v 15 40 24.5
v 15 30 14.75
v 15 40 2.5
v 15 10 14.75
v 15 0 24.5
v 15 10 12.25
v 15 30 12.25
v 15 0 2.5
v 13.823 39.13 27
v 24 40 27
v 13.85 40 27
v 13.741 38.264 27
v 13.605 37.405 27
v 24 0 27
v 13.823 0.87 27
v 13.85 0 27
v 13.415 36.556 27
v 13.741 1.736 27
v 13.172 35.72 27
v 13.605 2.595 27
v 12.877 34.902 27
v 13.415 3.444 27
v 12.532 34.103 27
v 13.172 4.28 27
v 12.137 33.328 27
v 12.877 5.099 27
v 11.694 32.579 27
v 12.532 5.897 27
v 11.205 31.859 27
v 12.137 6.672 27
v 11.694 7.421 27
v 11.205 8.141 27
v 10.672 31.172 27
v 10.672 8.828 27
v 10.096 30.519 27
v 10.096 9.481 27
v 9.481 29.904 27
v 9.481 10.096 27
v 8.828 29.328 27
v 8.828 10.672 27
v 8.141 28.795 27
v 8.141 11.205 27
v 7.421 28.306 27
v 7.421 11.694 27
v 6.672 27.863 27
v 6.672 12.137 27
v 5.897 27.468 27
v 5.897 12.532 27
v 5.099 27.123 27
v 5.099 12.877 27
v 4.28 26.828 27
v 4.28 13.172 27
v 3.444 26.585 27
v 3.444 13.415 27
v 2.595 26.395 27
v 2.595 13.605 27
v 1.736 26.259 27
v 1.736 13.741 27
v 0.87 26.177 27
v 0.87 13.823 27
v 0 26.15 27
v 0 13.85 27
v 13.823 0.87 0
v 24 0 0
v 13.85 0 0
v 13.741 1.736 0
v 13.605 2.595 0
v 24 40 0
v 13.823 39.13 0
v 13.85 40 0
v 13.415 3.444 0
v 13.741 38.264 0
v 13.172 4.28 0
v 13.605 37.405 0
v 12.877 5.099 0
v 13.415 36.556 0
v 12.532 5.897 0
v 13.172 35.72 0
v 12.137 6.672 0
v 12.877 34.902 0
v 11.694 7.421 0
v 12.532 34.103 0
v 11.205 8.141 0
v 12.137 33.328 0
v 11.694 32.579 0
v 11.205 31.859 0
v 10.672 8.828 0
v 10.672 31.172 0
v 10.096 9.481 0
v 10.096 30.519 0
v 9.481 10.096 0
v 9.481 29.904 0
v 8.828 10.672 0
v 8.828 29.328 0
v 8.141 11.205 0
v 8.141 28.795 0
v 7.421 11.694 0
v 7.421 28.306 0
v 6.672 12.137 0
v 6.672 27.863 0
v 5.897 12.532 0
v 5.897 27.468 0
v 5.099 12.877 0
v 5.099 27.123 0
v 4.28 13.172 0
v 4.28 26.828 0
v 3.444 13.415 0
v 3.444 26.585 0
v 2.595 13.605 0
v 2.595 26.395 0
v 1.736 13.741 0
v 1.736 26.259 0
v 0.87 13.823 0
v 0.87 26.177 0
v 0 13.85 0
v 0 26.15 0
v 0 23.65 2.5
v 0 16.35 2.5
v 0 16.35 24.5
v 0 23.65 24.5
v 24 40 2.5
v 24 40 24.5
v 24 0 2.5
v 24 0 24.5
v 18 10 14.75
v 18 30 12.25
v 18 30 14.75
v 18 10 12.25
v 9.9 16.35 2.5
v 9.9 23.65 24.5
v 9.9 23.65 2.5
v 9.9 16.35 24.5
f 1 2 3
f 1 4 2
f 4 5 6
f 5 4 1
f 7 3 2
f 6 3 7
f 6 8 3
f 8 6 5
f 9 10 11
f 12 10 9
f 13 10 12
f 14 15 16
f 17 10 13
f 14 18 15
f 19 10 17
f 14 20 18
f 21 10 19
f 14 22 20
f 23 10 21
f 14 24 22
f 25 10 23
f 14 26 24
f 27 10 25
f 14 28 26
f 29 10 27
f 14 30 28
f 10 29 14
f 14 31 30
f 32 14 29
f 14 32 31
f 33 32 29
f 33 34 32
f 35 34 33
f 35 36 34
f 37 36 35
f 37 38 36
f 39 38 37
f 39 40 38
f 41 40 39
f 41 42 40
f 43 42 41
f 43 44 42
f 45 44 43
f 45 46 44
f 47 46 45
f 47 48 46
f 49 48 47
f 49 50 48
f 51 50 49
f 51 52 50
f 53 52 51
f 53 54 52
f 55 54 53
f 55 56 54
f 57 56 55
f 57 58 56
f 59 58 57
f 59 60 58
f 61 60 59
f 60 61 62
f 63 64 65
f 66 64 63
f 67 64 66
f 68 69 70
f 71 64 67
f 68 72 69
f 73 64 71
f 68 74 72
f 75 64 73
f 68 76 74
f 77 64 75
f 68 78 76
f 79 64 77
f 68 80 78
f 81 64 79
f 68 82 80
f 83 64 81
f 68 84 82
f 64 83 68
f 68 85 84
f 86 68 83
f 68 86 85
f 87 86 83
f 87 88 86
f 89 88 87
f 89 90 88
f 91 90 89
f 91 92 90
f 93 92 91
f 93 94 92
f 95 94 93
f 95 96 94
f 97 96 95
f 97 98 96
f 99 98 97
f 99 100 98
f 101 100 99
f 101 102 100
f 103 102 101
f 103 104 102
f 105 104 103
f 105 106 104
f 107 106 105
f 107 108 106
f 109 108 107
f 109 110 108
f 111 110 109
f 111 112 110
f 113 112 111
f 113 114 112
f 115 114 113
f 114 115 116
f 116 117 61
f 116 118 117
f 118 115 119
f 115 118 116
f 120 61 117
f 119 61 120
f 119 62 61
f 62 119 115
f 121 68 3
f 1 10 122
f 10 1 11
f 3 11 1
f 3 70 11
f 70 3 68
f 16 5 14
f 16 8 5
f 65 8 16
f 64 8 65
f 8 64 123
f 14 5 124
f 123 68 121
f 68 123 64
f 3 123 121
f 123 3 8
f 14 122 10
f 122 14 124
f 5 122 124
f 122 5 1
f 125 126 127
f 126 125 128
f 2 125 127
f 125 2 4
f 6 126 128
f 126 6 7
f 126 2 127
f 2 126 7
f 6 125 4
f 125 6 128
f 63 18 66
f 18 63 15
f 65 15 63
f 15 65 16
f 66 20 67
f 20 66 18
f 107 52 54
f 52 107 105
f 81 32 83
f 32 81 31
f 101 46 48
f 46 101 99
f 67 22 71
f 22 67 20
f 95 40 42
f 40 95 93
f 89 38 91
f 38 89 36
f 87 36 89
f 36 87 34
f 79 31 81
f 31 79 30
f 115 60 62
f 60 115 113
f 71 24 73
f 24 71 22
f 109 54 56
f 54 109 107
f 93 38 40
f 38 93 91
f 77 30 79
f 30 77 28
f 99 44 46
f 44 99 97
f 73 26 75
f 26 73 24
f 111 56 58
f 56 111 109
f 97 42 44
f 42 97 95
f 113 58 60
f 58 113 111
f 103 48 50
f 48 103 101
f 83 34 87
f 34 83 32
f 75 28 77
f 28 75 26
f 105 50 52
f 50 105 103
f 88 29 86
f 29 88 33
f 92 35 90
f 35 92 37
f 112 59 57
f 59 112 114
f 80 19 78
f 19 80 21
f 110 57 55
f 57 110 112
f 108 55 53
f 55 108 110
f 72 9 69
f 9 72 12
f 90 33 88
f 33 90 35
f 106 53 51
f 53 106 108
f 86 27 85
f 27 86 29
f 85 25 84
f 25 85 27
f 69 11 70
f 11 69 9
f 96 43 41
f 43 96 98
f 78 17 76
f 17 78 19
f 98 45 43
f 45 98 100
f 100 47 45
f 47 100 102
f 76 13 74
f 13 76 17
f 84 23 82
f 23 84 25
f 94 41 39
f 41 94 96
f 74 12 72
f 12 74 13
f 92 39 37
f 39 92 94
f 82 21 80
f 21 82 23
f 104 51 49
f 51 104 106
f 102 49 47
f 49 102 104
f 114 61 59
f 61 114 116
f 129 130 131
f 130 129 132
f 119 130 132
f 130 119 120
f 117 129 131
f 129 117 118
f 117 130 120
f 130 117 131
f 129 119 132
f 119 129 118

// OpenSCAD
// a draft holder is work in progress

$fn = 100 ;
width = 40 ; 
length = 15 ;
height = 27 ;
holderH = 2.5 ;
pinH = 3 ;
pinW = 20 ;
holderDepth = 9 ;
bridgeW = 12.3 ;
insertDepth = 10 ;
cylD = (width - bridgeW) ;

module bracket() {
    difference(){
        union(){
            cube([length,width,height]);
            translate([length,0,0]) cube([holderDepth,width,holderH]);
            translate([length,0,height-holderH]) cube([holderDepth,width,holderH]);
            translate([length,(width-pinW)/2,(height-holderH)/2]) cube([pinH,pinW,holderH]);
        }
        translate ([0,0,-.1]) cylinder(h=height+.2,d=cylD);
        translate ([0,width,-.1]) cylinder(h=height+.2,d=cylD);
        translate([-.1,(cylD+2*holderH)/2,holderH]) cube([insertDepth,bridgeW-2*holderH,height-2*holderH]);
    }
}

bracket ();
